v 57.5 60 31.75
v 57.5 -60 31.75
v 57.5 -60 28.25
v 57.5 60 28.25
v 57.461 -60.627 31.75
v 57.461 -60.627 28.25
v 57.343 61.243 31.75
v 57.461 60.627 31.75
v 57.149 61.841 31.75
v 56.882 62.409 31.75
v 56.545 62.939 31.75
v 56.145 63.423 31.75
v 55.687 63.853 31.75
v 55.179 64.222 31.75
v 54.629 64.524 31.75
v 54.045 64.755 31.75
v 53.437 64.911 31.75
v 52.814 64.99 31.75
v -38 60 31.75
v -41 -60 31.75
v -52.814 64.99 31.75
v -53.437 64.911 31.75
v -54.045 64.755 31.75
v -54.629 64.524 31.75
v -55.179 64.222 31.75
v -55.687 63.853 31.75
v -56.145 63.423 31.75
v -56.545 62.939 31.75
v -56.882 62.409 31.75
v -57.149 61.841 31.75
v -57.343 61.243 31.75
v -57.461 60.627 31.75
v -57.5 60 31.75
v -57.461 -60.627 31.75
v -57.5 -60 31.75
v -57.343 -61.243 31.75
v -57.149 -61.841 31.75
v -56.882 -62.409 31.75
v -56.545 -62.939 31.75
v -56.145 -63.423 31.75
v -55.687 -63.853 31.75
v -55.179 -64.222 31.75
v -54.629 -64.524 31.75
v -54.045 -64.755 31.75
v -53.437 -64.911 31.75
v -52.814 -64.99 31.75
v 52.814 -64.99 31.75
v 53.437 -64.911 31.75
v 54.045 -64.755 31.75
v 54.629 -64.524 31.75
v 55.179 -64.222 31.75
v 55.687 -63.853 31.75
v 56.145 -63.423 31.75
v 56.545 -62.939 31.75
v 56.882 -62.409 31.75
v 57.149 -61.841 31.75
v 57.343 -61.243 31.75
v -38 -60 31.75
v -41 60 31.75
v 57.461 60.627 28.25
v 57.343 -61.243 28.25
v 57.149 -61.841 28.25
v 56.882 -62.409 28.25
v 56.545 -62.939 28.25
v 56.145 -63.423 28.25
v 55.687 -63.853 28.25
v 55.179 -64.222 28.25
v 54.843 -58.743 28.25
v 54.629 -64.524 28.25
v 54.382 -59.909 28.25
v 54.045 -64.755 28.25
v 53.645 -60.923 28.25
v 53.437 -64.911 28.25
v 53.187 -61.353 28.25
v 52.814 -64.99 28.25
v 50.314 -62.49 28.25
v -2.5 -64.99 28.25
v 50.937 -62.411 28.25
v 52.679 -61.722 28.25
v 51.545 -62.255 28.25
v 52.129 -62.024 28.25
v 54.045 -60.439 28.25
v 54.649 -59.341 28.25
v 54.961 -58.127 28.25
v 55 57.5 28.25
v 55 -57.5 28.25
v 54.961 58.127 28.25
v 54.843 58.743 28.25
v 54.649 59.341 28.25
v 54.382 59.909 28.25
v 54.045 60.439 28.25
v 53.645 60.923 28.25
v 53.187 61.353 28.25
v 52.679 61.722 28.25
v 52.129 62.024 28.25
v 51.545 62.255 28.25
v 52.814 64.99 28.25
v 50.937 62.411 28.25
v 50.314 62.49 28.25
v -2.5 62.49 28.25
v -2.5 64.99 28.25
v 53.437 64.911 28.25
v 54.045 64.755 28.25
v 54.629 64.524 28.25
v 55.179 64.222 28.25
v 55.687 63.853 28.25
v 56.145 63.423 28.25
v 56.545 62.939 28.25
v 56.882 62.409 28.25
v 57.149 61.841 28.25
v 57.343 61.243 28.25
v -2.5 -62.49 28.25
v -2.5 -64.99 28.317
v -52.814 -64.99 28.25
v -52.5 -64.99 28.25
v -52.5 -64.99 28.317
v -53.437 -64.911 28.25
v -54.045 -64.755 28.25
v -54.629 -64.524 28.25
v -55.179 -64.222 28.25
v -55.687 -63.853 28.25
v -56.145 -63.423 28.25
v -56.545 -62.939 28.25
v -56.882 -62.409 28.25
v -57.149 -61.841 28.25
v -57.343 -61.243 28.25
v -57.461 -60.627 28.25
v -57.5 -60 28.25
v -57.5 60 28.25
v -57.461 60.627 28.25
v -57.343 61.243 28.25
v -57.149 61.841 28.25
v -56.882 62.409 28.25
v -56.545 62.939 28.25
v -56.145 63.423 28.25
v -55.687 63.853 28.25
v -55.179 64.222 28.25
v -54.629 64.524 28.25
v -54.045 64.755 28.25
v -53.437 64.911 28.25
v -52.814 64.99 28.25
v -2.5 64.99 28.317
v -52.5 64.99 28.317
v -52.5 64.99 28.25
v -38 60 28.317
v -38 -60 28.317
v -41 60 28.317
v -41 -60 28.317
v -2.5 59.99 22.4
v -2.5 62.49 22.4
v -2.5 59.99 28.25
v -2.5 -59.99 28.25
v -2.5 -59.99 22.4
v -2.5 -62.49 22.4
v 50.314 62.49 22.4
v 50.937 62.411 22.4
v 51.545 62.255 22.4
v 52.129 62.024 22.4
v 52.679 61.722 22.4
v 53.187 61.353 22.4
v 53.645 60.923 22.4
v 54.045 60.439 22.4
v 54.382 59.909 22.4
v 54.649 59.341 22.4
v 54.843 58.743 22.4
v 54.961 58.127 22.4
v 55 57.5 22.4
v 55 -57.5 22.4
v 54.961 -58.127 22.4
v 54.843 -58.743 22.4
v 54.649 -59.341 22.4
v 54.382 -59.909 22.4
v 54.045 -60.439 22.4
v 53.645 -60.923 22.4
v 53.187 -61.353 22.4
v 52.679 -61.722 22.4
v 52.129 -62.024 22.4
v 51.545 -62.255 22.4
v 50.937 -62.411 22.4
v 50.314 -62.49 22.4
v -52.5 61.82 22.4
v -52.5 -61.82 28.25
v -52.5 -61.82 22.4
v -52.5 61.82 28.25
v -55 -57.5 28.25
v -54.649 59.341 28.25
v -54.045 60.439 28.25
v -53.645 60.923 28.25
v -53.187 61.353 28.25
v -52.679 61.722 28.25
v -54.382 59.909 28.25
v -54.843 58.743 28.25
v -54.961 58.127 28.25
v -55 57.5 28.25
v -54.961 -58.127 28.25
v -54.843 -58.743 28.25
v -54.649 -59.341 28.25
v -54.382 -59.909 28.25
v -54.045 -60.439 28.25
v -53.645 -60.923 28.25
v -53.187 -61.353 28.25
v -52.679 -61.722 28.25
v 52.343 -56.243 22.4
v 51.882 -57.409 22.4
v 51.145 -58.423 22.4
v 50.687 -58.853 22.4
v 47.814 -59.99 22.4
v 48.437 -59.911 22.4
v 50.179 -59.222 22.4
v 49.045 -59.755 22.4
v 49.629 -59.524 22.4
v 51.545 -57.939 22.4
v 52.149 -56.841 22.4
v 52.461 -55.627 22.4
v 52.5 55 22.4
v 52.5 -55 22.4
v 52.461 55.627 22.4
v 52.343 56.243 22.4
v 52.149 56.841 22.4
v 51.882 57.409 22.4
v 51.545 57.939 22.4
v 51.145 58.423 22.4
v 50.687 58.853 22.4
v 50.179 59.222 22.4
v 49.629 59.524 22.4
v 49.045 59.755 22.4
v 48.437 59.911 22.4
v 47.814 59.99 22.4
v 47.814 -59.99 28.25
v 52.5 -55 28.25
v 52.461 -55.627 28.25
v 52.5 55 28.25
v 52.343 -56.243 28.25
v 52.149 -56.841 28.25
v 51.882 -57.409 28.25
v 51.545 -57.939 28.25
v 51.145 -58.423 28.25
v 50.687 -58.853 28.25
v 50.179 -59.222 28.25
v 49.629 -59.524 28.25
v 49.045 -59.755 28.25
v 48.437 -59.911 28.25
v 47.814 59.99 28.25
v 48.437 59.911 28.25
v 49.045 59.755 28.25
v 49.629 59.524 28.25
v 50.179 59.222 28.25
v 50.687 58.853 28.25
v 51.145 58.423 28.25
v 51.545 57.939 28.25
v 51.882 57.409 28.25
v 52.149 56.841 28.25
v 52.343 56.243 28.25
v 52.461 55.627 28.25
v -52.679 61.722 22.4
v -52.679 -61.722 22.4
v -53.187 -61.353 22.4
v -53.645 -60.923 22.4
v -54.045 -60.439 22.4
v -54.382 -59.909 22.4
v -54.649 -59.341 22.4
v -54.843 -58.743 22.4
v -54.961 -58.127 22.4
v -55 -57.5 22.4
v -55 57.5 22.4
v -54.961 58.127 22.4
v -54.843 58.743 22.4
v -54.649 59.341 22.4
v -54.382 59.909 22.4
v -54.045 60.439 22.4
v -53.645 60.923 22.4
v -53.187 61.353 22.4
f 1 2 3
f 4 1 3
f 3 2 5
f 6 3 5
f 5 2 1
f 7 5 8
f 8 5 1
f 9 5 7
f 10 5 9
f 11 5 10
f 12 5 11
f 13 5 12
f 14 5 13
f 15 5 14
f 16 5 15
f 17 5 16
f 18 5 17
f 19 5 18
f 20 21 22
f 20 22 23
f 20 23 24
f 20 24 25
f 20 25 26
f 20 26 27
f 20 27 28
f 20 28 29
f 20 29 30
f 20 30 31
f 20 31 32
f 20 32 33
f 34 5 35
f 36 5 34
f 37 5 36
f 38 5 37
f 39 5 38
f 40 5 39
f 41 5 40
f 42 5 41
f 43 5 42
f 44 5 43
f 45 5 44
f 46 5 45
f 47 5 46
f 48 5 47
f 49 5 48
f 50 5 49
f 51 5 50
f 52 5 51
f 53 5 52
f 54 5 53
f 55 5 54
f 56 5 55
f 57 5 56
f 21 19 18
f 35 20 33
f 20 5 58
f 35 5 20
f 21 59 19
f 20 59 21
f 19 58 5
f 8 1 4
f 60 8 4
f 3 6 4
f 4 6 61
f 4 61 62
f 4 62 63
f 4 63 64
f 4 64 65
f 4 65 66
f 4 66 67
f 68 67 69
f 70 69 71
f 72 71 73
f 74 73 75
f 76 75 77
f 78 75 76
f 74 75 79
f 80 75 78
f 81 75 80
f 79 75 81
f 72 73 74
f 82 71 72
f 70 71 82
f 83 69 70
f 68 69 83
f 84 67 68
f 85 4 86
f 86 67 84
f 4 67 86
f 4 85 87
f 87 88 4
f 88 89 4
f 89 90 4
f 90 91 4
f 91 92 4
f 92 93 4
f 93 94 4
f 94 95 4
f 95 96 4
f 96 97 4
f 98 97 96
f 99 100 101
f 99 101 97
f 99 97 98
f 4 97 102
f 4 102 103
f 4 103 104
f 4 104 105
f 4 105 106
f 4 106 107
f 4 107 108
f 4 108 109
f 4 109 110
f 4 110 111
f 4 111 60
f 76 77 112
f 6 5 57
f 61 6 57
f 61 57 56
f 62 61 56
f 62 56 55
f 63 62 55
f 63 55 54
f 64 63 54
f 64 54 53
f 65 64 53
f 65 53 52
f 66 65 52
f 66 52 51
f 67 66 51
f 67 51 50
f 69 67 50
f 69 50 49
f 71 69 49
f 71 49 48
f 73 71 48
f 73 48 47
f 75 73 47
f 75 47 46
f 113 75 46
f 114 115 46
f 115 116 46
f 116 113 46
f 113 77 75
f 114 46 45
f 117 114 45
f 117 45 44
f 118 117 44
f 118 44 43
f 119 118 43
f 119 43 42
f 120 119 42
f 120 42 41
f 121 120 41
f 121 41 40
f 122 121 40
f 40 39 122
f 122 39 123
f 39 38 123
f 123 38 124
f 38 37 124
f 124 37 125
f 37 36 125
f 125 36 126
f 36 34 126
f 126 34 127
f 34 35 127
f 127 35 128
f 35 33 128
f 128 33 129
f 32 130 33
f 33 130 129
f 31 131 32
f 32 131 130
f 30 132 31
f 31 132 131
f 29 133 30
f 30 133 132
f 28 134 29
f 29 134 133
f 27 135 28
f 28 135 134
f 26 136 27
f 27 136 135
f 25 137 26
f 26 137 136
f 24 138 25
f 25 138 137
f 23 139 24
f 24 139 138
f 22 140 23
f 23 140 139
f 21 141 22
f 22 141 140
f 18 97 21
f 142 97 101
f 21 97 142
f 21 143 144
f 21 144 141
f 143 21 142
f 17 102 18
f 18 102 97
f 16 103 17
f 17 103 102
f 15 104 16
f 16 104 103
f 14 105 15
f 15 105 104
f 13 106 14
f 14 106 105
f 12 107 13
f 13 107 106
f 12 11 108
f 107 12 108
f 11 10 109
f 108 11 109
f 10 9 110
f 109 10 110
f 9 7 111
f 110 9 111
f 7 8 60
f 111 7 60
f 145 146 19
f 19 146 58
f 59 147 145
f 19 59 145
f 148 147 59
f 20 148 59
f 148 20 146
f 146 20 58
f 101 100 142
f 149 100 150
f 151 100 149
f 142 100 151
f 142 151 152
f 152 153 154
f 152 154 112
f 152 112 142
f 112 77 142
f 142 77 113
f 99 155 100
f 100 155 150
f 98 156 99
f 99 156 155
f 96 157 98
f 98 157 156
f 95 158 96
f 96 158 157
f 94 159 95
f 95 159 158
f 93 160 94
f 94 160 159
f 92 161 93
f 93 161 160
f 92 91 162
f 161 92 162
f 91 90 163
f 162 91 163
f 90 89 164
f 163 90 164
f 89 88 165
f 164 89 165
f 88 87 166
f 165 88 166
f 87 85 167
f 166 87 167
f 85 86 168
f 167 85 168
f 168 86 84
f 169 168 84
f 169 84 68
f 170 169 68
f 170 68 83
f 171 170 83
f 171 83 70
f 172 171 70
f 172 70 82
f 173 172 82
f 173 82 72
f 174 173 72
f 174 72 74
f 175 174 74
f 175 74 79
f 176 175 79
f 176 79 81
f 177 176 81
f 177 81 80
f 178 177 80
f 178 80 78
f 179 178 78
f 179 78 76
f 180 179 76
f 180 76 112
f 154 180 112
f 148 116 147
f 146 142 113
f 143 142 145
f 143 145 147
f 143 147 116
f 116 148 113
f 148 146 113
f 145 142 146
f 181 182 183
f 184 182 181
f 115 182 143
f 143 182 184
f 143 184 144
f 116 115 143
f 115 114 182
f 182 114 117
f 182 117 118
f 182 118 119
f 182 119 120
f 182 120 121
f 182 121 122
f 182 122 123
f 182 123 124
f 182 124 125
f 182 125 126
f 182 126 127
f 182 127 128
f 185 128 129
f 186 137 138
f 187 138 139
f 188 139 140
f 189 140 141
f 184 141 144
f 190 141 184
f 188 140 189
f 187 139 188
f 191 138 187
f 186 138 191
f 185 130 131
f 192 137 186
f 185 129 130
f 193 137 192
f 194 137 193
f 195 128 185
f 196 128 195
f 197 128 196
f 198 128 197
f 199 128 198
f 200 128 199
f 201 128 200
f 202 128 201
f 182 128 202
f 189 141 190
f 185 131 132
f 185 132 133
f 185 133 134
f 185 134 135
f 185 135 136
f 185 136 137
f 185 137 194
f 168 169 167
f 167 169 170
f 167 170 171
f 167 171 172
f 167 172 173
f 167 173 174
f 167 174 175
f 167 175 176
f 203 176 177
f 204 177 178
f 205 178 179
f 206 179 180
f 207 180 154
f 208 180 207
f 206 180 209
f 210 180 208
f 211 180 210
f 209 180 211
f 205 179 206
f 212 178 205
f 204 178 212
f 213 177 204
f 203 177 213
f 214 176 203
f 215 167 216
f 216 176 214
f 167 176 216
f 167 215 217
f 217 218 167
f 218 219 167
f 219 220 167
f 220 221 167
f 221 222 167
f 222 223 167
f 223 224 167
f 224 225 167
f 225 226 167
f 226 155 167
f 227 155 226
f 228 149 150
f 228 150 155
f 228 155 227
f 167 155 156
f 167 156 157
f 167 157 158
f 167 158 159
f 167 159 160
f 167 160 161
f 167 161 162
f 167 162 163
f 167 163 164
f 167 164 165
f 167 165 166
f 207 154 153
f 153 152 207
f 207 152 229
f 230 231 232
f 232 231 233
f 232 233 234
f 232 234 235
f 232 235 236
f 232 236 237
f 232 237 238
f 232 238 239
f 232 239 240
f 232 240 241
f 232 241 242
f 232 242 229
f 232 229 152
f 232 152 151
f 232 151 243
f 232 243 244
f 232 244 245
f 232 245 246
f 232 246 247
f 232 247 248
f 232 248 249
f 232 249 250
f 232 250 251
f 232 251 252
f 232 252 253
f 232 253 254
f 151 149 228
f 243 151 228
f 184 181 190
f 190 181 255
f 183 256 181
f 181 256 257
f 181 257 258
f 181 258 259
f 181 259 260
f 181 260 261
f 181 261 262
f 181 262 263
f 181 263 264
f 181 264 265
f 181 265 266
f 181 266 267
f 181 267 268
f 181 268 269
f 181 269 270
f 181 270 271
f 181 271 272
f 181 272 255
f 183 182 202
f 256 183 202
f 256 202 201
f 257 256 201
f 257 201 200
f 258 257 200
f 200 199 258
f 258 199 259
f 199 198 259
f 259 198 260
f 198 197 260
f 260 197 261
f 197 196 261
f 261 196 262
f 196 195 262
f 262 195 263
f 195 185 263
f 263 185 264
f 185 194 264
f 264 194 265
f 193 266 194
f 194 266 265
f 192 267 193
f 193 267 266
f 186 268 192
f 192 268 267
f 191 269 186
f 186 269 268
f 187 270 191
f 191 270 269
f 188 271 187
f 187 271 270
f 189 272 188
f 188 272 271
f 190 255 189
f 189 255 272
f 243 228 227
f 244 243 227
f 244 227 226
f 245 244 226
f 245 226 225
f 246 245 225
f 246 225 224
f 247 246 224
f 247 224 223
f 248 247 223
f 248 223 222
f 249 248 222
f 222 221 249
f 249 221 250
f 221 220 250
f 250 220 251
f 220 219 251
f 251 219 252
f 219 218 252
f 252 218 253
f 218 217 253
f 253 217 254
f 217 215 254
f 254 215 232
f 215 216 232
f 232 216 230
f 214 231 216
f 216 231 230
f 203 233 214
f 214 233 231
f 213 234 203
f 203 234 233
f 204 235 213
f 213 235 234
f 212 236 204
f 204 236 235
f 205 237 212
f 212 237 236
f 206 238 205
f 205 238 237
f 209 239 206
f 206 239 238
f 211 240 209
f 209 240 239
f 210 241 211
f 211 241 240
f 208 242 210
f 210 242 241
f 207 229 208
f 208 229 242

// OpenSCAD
// file: config.scad
$fn = 50;
screw_distance_x = 60;
screw_distance_y = 40;
wall_thickness = 2.5;

case_width = screw_distance_x*2;
case_length = screw_distance_y*2.25+15;
case_height = 32;

bearing_diameter = 16;
bearing_length = 28;
// main file
include <config.scad>;

translate([0,0,30]) rotate([0,180,0]) top_case();
//rotate([0,180,0])  bottom_case();

module base_form(width,length,height){
    
   translate([-length/2,-width/2,0]) minkowski(){
	cube([length,width,height],true);
    translate([length/2,width/2,0]) cylinder(1,5,5,true);
   }
   
}


module top_case(){
difference(){
 union(){
    // Base Form of Bottom Case
   	base_form(case_width,case_length,wall_thickness);

  difference(){
	translate([0,0,case_height/5-wall_thickness]) 
       base_form(case_width-wall_thickness*2,case_length-wall_thickness*2,case_height/5);
	
    translate([0,0,case_height/5+0.1-wall_thickness]) 
       base_form(case_width-wall_thickness*4,case_length-wall_thickness*4,case_height/5);
  }

  } 
 	// Mirror mount slor
	translate([(case_length/2)-13,0,-wall_thickness]) cube([3,case_width,case_height],true);
    translate([(case_length/2)-25,0,case_height/3-wall_thickness-0.65]) 
        cube([50,case_width+60,case_height/3+1],true);
}

}


module bottom_case(){
  difference(){
    
    // Base Form of Bottom Case
   	base_form(case_width,case_length,case_height);
   	translate([0,0,-wall_thickness]) 
	  base_form(case_width-wall_thickness*2,case_length-wall_thickness*2,case_height);
	
     translate([10,-case_width/2-3,0]){ 
		 rotate([0,90,90]) cylinder(5,28/2,28/2,true);
	    translate([11.8,0,11.8]) rotate([0,90,90]) cylinder(5,3/2,3/2,true);
	    translate([11.8,0,-11.8]) rotate([0,90,90]) cylinder(5,3/2,3/2,true);
		translate([-11.8,0,11.8]) rotate([0,90,90]) cylinder(5,3/2,3/2,true);
   		translate([-11.8,0,-11.8]) rotate([0,90,90]) cylinder(5,3/2,3/2,true);
    }
    // Polygon Mirror Holes
	translate([-20,0,case_height/2-wall_thickness/2])
      rotate([0,0,90])  polygon_mirror_screw_holes();

	// Polygon Mirror Bottom Hole
	translate([-30,0,case_height/2]) 
      rotate([0,0,90]) cube([screw_distance_y/1.2,screw_distance_x/1.6,wall_thickness+2],true);

     // Front Bearing mount
     translate([case_length/2-bearing_length/2,screw_distance_x/2+16,case_height/2-wall_thickness/2]) 
       rotate([0,0,90]) bearing_hole();
     translate([case_length/2-bearing_length/2,-screw_distance_x+14,case_height/2-wall_thickness/2]) 
    	   rotate([0,0,90]) bearing_hole();

     // Back Bearing mount
     translate([-case_length/2+bearing_length/2,-screw_distance_x+14,case_height/2-wall_thickness/2]) 
		rotate([0,0,90]) bearing_hole();
     translate([-case_length/2+bearing_length/2,screw_distance_x/2+16,case_height/2-wall_thickness/2]) 
       rotate([0,0,90]) bearing_hole();

	// Mirror mount slor
	translate([(case_length/2)-5,0,-wall_thickness]) cube([4,case_width*2,case_height],true);
	
	// laser mount hole
    translate([screw_distance_y/4+2,-screw_distance_x/2-16,case_height/2-wall_thickness/2]) 
      cylinder(wall_thickness+2,1.6,1.6,true);

  }
}

module polygon_mirror_screw_holes(){
  translate([-screw_distance_y/2,screw_distance_x/2,0]) cylinder(wall_thickness+4,1.6,1.6,true);  
  translate([-screw_distance_y/2,-screw_distance_x/2,0]) cylinder(wall_thickness+4,1.6,1.6,true);
  translate([screw_distance_y/2,screw_distance_x/2,0]) cylinder(wall_thickness+4,1.6,1.6,true);
  translate([screw_distance_y/2,-screw_distance_x/2,0]) cylinder(wall_thickness+4,1.6,1.6,true);
}

module bearing_hole(){

    hull(){
   	   translate([0,-bearing_length/2+bearing_diameter/4,0]) 
        cylinder(wall_thickness+2,bearing_diameter/4,bearing_diameter/4,true);
    	 translate([0,bearing_length/2-bearing_diameter/4,0]) 
        cylinder(wall_thickness+2,bearing_diameter/4,bearing_diameter/4,true);
    }
    translate([8,bearing_length/3,0]) cylinder(wall_thickness+3,1.6,1.6,true);
    translate([-8,-bearing_length/3,0]) cylinder(wall_thickness+3,1.6,1.6,true);
    translate([8,-bearing_length/3,0]) cylinder(wall_thickness+3,1.6,1.6,true);
    translate([-8,bearing_length/3,0]) cylinder(wall_thickness+3,1.6,1.6,true);
 
}
